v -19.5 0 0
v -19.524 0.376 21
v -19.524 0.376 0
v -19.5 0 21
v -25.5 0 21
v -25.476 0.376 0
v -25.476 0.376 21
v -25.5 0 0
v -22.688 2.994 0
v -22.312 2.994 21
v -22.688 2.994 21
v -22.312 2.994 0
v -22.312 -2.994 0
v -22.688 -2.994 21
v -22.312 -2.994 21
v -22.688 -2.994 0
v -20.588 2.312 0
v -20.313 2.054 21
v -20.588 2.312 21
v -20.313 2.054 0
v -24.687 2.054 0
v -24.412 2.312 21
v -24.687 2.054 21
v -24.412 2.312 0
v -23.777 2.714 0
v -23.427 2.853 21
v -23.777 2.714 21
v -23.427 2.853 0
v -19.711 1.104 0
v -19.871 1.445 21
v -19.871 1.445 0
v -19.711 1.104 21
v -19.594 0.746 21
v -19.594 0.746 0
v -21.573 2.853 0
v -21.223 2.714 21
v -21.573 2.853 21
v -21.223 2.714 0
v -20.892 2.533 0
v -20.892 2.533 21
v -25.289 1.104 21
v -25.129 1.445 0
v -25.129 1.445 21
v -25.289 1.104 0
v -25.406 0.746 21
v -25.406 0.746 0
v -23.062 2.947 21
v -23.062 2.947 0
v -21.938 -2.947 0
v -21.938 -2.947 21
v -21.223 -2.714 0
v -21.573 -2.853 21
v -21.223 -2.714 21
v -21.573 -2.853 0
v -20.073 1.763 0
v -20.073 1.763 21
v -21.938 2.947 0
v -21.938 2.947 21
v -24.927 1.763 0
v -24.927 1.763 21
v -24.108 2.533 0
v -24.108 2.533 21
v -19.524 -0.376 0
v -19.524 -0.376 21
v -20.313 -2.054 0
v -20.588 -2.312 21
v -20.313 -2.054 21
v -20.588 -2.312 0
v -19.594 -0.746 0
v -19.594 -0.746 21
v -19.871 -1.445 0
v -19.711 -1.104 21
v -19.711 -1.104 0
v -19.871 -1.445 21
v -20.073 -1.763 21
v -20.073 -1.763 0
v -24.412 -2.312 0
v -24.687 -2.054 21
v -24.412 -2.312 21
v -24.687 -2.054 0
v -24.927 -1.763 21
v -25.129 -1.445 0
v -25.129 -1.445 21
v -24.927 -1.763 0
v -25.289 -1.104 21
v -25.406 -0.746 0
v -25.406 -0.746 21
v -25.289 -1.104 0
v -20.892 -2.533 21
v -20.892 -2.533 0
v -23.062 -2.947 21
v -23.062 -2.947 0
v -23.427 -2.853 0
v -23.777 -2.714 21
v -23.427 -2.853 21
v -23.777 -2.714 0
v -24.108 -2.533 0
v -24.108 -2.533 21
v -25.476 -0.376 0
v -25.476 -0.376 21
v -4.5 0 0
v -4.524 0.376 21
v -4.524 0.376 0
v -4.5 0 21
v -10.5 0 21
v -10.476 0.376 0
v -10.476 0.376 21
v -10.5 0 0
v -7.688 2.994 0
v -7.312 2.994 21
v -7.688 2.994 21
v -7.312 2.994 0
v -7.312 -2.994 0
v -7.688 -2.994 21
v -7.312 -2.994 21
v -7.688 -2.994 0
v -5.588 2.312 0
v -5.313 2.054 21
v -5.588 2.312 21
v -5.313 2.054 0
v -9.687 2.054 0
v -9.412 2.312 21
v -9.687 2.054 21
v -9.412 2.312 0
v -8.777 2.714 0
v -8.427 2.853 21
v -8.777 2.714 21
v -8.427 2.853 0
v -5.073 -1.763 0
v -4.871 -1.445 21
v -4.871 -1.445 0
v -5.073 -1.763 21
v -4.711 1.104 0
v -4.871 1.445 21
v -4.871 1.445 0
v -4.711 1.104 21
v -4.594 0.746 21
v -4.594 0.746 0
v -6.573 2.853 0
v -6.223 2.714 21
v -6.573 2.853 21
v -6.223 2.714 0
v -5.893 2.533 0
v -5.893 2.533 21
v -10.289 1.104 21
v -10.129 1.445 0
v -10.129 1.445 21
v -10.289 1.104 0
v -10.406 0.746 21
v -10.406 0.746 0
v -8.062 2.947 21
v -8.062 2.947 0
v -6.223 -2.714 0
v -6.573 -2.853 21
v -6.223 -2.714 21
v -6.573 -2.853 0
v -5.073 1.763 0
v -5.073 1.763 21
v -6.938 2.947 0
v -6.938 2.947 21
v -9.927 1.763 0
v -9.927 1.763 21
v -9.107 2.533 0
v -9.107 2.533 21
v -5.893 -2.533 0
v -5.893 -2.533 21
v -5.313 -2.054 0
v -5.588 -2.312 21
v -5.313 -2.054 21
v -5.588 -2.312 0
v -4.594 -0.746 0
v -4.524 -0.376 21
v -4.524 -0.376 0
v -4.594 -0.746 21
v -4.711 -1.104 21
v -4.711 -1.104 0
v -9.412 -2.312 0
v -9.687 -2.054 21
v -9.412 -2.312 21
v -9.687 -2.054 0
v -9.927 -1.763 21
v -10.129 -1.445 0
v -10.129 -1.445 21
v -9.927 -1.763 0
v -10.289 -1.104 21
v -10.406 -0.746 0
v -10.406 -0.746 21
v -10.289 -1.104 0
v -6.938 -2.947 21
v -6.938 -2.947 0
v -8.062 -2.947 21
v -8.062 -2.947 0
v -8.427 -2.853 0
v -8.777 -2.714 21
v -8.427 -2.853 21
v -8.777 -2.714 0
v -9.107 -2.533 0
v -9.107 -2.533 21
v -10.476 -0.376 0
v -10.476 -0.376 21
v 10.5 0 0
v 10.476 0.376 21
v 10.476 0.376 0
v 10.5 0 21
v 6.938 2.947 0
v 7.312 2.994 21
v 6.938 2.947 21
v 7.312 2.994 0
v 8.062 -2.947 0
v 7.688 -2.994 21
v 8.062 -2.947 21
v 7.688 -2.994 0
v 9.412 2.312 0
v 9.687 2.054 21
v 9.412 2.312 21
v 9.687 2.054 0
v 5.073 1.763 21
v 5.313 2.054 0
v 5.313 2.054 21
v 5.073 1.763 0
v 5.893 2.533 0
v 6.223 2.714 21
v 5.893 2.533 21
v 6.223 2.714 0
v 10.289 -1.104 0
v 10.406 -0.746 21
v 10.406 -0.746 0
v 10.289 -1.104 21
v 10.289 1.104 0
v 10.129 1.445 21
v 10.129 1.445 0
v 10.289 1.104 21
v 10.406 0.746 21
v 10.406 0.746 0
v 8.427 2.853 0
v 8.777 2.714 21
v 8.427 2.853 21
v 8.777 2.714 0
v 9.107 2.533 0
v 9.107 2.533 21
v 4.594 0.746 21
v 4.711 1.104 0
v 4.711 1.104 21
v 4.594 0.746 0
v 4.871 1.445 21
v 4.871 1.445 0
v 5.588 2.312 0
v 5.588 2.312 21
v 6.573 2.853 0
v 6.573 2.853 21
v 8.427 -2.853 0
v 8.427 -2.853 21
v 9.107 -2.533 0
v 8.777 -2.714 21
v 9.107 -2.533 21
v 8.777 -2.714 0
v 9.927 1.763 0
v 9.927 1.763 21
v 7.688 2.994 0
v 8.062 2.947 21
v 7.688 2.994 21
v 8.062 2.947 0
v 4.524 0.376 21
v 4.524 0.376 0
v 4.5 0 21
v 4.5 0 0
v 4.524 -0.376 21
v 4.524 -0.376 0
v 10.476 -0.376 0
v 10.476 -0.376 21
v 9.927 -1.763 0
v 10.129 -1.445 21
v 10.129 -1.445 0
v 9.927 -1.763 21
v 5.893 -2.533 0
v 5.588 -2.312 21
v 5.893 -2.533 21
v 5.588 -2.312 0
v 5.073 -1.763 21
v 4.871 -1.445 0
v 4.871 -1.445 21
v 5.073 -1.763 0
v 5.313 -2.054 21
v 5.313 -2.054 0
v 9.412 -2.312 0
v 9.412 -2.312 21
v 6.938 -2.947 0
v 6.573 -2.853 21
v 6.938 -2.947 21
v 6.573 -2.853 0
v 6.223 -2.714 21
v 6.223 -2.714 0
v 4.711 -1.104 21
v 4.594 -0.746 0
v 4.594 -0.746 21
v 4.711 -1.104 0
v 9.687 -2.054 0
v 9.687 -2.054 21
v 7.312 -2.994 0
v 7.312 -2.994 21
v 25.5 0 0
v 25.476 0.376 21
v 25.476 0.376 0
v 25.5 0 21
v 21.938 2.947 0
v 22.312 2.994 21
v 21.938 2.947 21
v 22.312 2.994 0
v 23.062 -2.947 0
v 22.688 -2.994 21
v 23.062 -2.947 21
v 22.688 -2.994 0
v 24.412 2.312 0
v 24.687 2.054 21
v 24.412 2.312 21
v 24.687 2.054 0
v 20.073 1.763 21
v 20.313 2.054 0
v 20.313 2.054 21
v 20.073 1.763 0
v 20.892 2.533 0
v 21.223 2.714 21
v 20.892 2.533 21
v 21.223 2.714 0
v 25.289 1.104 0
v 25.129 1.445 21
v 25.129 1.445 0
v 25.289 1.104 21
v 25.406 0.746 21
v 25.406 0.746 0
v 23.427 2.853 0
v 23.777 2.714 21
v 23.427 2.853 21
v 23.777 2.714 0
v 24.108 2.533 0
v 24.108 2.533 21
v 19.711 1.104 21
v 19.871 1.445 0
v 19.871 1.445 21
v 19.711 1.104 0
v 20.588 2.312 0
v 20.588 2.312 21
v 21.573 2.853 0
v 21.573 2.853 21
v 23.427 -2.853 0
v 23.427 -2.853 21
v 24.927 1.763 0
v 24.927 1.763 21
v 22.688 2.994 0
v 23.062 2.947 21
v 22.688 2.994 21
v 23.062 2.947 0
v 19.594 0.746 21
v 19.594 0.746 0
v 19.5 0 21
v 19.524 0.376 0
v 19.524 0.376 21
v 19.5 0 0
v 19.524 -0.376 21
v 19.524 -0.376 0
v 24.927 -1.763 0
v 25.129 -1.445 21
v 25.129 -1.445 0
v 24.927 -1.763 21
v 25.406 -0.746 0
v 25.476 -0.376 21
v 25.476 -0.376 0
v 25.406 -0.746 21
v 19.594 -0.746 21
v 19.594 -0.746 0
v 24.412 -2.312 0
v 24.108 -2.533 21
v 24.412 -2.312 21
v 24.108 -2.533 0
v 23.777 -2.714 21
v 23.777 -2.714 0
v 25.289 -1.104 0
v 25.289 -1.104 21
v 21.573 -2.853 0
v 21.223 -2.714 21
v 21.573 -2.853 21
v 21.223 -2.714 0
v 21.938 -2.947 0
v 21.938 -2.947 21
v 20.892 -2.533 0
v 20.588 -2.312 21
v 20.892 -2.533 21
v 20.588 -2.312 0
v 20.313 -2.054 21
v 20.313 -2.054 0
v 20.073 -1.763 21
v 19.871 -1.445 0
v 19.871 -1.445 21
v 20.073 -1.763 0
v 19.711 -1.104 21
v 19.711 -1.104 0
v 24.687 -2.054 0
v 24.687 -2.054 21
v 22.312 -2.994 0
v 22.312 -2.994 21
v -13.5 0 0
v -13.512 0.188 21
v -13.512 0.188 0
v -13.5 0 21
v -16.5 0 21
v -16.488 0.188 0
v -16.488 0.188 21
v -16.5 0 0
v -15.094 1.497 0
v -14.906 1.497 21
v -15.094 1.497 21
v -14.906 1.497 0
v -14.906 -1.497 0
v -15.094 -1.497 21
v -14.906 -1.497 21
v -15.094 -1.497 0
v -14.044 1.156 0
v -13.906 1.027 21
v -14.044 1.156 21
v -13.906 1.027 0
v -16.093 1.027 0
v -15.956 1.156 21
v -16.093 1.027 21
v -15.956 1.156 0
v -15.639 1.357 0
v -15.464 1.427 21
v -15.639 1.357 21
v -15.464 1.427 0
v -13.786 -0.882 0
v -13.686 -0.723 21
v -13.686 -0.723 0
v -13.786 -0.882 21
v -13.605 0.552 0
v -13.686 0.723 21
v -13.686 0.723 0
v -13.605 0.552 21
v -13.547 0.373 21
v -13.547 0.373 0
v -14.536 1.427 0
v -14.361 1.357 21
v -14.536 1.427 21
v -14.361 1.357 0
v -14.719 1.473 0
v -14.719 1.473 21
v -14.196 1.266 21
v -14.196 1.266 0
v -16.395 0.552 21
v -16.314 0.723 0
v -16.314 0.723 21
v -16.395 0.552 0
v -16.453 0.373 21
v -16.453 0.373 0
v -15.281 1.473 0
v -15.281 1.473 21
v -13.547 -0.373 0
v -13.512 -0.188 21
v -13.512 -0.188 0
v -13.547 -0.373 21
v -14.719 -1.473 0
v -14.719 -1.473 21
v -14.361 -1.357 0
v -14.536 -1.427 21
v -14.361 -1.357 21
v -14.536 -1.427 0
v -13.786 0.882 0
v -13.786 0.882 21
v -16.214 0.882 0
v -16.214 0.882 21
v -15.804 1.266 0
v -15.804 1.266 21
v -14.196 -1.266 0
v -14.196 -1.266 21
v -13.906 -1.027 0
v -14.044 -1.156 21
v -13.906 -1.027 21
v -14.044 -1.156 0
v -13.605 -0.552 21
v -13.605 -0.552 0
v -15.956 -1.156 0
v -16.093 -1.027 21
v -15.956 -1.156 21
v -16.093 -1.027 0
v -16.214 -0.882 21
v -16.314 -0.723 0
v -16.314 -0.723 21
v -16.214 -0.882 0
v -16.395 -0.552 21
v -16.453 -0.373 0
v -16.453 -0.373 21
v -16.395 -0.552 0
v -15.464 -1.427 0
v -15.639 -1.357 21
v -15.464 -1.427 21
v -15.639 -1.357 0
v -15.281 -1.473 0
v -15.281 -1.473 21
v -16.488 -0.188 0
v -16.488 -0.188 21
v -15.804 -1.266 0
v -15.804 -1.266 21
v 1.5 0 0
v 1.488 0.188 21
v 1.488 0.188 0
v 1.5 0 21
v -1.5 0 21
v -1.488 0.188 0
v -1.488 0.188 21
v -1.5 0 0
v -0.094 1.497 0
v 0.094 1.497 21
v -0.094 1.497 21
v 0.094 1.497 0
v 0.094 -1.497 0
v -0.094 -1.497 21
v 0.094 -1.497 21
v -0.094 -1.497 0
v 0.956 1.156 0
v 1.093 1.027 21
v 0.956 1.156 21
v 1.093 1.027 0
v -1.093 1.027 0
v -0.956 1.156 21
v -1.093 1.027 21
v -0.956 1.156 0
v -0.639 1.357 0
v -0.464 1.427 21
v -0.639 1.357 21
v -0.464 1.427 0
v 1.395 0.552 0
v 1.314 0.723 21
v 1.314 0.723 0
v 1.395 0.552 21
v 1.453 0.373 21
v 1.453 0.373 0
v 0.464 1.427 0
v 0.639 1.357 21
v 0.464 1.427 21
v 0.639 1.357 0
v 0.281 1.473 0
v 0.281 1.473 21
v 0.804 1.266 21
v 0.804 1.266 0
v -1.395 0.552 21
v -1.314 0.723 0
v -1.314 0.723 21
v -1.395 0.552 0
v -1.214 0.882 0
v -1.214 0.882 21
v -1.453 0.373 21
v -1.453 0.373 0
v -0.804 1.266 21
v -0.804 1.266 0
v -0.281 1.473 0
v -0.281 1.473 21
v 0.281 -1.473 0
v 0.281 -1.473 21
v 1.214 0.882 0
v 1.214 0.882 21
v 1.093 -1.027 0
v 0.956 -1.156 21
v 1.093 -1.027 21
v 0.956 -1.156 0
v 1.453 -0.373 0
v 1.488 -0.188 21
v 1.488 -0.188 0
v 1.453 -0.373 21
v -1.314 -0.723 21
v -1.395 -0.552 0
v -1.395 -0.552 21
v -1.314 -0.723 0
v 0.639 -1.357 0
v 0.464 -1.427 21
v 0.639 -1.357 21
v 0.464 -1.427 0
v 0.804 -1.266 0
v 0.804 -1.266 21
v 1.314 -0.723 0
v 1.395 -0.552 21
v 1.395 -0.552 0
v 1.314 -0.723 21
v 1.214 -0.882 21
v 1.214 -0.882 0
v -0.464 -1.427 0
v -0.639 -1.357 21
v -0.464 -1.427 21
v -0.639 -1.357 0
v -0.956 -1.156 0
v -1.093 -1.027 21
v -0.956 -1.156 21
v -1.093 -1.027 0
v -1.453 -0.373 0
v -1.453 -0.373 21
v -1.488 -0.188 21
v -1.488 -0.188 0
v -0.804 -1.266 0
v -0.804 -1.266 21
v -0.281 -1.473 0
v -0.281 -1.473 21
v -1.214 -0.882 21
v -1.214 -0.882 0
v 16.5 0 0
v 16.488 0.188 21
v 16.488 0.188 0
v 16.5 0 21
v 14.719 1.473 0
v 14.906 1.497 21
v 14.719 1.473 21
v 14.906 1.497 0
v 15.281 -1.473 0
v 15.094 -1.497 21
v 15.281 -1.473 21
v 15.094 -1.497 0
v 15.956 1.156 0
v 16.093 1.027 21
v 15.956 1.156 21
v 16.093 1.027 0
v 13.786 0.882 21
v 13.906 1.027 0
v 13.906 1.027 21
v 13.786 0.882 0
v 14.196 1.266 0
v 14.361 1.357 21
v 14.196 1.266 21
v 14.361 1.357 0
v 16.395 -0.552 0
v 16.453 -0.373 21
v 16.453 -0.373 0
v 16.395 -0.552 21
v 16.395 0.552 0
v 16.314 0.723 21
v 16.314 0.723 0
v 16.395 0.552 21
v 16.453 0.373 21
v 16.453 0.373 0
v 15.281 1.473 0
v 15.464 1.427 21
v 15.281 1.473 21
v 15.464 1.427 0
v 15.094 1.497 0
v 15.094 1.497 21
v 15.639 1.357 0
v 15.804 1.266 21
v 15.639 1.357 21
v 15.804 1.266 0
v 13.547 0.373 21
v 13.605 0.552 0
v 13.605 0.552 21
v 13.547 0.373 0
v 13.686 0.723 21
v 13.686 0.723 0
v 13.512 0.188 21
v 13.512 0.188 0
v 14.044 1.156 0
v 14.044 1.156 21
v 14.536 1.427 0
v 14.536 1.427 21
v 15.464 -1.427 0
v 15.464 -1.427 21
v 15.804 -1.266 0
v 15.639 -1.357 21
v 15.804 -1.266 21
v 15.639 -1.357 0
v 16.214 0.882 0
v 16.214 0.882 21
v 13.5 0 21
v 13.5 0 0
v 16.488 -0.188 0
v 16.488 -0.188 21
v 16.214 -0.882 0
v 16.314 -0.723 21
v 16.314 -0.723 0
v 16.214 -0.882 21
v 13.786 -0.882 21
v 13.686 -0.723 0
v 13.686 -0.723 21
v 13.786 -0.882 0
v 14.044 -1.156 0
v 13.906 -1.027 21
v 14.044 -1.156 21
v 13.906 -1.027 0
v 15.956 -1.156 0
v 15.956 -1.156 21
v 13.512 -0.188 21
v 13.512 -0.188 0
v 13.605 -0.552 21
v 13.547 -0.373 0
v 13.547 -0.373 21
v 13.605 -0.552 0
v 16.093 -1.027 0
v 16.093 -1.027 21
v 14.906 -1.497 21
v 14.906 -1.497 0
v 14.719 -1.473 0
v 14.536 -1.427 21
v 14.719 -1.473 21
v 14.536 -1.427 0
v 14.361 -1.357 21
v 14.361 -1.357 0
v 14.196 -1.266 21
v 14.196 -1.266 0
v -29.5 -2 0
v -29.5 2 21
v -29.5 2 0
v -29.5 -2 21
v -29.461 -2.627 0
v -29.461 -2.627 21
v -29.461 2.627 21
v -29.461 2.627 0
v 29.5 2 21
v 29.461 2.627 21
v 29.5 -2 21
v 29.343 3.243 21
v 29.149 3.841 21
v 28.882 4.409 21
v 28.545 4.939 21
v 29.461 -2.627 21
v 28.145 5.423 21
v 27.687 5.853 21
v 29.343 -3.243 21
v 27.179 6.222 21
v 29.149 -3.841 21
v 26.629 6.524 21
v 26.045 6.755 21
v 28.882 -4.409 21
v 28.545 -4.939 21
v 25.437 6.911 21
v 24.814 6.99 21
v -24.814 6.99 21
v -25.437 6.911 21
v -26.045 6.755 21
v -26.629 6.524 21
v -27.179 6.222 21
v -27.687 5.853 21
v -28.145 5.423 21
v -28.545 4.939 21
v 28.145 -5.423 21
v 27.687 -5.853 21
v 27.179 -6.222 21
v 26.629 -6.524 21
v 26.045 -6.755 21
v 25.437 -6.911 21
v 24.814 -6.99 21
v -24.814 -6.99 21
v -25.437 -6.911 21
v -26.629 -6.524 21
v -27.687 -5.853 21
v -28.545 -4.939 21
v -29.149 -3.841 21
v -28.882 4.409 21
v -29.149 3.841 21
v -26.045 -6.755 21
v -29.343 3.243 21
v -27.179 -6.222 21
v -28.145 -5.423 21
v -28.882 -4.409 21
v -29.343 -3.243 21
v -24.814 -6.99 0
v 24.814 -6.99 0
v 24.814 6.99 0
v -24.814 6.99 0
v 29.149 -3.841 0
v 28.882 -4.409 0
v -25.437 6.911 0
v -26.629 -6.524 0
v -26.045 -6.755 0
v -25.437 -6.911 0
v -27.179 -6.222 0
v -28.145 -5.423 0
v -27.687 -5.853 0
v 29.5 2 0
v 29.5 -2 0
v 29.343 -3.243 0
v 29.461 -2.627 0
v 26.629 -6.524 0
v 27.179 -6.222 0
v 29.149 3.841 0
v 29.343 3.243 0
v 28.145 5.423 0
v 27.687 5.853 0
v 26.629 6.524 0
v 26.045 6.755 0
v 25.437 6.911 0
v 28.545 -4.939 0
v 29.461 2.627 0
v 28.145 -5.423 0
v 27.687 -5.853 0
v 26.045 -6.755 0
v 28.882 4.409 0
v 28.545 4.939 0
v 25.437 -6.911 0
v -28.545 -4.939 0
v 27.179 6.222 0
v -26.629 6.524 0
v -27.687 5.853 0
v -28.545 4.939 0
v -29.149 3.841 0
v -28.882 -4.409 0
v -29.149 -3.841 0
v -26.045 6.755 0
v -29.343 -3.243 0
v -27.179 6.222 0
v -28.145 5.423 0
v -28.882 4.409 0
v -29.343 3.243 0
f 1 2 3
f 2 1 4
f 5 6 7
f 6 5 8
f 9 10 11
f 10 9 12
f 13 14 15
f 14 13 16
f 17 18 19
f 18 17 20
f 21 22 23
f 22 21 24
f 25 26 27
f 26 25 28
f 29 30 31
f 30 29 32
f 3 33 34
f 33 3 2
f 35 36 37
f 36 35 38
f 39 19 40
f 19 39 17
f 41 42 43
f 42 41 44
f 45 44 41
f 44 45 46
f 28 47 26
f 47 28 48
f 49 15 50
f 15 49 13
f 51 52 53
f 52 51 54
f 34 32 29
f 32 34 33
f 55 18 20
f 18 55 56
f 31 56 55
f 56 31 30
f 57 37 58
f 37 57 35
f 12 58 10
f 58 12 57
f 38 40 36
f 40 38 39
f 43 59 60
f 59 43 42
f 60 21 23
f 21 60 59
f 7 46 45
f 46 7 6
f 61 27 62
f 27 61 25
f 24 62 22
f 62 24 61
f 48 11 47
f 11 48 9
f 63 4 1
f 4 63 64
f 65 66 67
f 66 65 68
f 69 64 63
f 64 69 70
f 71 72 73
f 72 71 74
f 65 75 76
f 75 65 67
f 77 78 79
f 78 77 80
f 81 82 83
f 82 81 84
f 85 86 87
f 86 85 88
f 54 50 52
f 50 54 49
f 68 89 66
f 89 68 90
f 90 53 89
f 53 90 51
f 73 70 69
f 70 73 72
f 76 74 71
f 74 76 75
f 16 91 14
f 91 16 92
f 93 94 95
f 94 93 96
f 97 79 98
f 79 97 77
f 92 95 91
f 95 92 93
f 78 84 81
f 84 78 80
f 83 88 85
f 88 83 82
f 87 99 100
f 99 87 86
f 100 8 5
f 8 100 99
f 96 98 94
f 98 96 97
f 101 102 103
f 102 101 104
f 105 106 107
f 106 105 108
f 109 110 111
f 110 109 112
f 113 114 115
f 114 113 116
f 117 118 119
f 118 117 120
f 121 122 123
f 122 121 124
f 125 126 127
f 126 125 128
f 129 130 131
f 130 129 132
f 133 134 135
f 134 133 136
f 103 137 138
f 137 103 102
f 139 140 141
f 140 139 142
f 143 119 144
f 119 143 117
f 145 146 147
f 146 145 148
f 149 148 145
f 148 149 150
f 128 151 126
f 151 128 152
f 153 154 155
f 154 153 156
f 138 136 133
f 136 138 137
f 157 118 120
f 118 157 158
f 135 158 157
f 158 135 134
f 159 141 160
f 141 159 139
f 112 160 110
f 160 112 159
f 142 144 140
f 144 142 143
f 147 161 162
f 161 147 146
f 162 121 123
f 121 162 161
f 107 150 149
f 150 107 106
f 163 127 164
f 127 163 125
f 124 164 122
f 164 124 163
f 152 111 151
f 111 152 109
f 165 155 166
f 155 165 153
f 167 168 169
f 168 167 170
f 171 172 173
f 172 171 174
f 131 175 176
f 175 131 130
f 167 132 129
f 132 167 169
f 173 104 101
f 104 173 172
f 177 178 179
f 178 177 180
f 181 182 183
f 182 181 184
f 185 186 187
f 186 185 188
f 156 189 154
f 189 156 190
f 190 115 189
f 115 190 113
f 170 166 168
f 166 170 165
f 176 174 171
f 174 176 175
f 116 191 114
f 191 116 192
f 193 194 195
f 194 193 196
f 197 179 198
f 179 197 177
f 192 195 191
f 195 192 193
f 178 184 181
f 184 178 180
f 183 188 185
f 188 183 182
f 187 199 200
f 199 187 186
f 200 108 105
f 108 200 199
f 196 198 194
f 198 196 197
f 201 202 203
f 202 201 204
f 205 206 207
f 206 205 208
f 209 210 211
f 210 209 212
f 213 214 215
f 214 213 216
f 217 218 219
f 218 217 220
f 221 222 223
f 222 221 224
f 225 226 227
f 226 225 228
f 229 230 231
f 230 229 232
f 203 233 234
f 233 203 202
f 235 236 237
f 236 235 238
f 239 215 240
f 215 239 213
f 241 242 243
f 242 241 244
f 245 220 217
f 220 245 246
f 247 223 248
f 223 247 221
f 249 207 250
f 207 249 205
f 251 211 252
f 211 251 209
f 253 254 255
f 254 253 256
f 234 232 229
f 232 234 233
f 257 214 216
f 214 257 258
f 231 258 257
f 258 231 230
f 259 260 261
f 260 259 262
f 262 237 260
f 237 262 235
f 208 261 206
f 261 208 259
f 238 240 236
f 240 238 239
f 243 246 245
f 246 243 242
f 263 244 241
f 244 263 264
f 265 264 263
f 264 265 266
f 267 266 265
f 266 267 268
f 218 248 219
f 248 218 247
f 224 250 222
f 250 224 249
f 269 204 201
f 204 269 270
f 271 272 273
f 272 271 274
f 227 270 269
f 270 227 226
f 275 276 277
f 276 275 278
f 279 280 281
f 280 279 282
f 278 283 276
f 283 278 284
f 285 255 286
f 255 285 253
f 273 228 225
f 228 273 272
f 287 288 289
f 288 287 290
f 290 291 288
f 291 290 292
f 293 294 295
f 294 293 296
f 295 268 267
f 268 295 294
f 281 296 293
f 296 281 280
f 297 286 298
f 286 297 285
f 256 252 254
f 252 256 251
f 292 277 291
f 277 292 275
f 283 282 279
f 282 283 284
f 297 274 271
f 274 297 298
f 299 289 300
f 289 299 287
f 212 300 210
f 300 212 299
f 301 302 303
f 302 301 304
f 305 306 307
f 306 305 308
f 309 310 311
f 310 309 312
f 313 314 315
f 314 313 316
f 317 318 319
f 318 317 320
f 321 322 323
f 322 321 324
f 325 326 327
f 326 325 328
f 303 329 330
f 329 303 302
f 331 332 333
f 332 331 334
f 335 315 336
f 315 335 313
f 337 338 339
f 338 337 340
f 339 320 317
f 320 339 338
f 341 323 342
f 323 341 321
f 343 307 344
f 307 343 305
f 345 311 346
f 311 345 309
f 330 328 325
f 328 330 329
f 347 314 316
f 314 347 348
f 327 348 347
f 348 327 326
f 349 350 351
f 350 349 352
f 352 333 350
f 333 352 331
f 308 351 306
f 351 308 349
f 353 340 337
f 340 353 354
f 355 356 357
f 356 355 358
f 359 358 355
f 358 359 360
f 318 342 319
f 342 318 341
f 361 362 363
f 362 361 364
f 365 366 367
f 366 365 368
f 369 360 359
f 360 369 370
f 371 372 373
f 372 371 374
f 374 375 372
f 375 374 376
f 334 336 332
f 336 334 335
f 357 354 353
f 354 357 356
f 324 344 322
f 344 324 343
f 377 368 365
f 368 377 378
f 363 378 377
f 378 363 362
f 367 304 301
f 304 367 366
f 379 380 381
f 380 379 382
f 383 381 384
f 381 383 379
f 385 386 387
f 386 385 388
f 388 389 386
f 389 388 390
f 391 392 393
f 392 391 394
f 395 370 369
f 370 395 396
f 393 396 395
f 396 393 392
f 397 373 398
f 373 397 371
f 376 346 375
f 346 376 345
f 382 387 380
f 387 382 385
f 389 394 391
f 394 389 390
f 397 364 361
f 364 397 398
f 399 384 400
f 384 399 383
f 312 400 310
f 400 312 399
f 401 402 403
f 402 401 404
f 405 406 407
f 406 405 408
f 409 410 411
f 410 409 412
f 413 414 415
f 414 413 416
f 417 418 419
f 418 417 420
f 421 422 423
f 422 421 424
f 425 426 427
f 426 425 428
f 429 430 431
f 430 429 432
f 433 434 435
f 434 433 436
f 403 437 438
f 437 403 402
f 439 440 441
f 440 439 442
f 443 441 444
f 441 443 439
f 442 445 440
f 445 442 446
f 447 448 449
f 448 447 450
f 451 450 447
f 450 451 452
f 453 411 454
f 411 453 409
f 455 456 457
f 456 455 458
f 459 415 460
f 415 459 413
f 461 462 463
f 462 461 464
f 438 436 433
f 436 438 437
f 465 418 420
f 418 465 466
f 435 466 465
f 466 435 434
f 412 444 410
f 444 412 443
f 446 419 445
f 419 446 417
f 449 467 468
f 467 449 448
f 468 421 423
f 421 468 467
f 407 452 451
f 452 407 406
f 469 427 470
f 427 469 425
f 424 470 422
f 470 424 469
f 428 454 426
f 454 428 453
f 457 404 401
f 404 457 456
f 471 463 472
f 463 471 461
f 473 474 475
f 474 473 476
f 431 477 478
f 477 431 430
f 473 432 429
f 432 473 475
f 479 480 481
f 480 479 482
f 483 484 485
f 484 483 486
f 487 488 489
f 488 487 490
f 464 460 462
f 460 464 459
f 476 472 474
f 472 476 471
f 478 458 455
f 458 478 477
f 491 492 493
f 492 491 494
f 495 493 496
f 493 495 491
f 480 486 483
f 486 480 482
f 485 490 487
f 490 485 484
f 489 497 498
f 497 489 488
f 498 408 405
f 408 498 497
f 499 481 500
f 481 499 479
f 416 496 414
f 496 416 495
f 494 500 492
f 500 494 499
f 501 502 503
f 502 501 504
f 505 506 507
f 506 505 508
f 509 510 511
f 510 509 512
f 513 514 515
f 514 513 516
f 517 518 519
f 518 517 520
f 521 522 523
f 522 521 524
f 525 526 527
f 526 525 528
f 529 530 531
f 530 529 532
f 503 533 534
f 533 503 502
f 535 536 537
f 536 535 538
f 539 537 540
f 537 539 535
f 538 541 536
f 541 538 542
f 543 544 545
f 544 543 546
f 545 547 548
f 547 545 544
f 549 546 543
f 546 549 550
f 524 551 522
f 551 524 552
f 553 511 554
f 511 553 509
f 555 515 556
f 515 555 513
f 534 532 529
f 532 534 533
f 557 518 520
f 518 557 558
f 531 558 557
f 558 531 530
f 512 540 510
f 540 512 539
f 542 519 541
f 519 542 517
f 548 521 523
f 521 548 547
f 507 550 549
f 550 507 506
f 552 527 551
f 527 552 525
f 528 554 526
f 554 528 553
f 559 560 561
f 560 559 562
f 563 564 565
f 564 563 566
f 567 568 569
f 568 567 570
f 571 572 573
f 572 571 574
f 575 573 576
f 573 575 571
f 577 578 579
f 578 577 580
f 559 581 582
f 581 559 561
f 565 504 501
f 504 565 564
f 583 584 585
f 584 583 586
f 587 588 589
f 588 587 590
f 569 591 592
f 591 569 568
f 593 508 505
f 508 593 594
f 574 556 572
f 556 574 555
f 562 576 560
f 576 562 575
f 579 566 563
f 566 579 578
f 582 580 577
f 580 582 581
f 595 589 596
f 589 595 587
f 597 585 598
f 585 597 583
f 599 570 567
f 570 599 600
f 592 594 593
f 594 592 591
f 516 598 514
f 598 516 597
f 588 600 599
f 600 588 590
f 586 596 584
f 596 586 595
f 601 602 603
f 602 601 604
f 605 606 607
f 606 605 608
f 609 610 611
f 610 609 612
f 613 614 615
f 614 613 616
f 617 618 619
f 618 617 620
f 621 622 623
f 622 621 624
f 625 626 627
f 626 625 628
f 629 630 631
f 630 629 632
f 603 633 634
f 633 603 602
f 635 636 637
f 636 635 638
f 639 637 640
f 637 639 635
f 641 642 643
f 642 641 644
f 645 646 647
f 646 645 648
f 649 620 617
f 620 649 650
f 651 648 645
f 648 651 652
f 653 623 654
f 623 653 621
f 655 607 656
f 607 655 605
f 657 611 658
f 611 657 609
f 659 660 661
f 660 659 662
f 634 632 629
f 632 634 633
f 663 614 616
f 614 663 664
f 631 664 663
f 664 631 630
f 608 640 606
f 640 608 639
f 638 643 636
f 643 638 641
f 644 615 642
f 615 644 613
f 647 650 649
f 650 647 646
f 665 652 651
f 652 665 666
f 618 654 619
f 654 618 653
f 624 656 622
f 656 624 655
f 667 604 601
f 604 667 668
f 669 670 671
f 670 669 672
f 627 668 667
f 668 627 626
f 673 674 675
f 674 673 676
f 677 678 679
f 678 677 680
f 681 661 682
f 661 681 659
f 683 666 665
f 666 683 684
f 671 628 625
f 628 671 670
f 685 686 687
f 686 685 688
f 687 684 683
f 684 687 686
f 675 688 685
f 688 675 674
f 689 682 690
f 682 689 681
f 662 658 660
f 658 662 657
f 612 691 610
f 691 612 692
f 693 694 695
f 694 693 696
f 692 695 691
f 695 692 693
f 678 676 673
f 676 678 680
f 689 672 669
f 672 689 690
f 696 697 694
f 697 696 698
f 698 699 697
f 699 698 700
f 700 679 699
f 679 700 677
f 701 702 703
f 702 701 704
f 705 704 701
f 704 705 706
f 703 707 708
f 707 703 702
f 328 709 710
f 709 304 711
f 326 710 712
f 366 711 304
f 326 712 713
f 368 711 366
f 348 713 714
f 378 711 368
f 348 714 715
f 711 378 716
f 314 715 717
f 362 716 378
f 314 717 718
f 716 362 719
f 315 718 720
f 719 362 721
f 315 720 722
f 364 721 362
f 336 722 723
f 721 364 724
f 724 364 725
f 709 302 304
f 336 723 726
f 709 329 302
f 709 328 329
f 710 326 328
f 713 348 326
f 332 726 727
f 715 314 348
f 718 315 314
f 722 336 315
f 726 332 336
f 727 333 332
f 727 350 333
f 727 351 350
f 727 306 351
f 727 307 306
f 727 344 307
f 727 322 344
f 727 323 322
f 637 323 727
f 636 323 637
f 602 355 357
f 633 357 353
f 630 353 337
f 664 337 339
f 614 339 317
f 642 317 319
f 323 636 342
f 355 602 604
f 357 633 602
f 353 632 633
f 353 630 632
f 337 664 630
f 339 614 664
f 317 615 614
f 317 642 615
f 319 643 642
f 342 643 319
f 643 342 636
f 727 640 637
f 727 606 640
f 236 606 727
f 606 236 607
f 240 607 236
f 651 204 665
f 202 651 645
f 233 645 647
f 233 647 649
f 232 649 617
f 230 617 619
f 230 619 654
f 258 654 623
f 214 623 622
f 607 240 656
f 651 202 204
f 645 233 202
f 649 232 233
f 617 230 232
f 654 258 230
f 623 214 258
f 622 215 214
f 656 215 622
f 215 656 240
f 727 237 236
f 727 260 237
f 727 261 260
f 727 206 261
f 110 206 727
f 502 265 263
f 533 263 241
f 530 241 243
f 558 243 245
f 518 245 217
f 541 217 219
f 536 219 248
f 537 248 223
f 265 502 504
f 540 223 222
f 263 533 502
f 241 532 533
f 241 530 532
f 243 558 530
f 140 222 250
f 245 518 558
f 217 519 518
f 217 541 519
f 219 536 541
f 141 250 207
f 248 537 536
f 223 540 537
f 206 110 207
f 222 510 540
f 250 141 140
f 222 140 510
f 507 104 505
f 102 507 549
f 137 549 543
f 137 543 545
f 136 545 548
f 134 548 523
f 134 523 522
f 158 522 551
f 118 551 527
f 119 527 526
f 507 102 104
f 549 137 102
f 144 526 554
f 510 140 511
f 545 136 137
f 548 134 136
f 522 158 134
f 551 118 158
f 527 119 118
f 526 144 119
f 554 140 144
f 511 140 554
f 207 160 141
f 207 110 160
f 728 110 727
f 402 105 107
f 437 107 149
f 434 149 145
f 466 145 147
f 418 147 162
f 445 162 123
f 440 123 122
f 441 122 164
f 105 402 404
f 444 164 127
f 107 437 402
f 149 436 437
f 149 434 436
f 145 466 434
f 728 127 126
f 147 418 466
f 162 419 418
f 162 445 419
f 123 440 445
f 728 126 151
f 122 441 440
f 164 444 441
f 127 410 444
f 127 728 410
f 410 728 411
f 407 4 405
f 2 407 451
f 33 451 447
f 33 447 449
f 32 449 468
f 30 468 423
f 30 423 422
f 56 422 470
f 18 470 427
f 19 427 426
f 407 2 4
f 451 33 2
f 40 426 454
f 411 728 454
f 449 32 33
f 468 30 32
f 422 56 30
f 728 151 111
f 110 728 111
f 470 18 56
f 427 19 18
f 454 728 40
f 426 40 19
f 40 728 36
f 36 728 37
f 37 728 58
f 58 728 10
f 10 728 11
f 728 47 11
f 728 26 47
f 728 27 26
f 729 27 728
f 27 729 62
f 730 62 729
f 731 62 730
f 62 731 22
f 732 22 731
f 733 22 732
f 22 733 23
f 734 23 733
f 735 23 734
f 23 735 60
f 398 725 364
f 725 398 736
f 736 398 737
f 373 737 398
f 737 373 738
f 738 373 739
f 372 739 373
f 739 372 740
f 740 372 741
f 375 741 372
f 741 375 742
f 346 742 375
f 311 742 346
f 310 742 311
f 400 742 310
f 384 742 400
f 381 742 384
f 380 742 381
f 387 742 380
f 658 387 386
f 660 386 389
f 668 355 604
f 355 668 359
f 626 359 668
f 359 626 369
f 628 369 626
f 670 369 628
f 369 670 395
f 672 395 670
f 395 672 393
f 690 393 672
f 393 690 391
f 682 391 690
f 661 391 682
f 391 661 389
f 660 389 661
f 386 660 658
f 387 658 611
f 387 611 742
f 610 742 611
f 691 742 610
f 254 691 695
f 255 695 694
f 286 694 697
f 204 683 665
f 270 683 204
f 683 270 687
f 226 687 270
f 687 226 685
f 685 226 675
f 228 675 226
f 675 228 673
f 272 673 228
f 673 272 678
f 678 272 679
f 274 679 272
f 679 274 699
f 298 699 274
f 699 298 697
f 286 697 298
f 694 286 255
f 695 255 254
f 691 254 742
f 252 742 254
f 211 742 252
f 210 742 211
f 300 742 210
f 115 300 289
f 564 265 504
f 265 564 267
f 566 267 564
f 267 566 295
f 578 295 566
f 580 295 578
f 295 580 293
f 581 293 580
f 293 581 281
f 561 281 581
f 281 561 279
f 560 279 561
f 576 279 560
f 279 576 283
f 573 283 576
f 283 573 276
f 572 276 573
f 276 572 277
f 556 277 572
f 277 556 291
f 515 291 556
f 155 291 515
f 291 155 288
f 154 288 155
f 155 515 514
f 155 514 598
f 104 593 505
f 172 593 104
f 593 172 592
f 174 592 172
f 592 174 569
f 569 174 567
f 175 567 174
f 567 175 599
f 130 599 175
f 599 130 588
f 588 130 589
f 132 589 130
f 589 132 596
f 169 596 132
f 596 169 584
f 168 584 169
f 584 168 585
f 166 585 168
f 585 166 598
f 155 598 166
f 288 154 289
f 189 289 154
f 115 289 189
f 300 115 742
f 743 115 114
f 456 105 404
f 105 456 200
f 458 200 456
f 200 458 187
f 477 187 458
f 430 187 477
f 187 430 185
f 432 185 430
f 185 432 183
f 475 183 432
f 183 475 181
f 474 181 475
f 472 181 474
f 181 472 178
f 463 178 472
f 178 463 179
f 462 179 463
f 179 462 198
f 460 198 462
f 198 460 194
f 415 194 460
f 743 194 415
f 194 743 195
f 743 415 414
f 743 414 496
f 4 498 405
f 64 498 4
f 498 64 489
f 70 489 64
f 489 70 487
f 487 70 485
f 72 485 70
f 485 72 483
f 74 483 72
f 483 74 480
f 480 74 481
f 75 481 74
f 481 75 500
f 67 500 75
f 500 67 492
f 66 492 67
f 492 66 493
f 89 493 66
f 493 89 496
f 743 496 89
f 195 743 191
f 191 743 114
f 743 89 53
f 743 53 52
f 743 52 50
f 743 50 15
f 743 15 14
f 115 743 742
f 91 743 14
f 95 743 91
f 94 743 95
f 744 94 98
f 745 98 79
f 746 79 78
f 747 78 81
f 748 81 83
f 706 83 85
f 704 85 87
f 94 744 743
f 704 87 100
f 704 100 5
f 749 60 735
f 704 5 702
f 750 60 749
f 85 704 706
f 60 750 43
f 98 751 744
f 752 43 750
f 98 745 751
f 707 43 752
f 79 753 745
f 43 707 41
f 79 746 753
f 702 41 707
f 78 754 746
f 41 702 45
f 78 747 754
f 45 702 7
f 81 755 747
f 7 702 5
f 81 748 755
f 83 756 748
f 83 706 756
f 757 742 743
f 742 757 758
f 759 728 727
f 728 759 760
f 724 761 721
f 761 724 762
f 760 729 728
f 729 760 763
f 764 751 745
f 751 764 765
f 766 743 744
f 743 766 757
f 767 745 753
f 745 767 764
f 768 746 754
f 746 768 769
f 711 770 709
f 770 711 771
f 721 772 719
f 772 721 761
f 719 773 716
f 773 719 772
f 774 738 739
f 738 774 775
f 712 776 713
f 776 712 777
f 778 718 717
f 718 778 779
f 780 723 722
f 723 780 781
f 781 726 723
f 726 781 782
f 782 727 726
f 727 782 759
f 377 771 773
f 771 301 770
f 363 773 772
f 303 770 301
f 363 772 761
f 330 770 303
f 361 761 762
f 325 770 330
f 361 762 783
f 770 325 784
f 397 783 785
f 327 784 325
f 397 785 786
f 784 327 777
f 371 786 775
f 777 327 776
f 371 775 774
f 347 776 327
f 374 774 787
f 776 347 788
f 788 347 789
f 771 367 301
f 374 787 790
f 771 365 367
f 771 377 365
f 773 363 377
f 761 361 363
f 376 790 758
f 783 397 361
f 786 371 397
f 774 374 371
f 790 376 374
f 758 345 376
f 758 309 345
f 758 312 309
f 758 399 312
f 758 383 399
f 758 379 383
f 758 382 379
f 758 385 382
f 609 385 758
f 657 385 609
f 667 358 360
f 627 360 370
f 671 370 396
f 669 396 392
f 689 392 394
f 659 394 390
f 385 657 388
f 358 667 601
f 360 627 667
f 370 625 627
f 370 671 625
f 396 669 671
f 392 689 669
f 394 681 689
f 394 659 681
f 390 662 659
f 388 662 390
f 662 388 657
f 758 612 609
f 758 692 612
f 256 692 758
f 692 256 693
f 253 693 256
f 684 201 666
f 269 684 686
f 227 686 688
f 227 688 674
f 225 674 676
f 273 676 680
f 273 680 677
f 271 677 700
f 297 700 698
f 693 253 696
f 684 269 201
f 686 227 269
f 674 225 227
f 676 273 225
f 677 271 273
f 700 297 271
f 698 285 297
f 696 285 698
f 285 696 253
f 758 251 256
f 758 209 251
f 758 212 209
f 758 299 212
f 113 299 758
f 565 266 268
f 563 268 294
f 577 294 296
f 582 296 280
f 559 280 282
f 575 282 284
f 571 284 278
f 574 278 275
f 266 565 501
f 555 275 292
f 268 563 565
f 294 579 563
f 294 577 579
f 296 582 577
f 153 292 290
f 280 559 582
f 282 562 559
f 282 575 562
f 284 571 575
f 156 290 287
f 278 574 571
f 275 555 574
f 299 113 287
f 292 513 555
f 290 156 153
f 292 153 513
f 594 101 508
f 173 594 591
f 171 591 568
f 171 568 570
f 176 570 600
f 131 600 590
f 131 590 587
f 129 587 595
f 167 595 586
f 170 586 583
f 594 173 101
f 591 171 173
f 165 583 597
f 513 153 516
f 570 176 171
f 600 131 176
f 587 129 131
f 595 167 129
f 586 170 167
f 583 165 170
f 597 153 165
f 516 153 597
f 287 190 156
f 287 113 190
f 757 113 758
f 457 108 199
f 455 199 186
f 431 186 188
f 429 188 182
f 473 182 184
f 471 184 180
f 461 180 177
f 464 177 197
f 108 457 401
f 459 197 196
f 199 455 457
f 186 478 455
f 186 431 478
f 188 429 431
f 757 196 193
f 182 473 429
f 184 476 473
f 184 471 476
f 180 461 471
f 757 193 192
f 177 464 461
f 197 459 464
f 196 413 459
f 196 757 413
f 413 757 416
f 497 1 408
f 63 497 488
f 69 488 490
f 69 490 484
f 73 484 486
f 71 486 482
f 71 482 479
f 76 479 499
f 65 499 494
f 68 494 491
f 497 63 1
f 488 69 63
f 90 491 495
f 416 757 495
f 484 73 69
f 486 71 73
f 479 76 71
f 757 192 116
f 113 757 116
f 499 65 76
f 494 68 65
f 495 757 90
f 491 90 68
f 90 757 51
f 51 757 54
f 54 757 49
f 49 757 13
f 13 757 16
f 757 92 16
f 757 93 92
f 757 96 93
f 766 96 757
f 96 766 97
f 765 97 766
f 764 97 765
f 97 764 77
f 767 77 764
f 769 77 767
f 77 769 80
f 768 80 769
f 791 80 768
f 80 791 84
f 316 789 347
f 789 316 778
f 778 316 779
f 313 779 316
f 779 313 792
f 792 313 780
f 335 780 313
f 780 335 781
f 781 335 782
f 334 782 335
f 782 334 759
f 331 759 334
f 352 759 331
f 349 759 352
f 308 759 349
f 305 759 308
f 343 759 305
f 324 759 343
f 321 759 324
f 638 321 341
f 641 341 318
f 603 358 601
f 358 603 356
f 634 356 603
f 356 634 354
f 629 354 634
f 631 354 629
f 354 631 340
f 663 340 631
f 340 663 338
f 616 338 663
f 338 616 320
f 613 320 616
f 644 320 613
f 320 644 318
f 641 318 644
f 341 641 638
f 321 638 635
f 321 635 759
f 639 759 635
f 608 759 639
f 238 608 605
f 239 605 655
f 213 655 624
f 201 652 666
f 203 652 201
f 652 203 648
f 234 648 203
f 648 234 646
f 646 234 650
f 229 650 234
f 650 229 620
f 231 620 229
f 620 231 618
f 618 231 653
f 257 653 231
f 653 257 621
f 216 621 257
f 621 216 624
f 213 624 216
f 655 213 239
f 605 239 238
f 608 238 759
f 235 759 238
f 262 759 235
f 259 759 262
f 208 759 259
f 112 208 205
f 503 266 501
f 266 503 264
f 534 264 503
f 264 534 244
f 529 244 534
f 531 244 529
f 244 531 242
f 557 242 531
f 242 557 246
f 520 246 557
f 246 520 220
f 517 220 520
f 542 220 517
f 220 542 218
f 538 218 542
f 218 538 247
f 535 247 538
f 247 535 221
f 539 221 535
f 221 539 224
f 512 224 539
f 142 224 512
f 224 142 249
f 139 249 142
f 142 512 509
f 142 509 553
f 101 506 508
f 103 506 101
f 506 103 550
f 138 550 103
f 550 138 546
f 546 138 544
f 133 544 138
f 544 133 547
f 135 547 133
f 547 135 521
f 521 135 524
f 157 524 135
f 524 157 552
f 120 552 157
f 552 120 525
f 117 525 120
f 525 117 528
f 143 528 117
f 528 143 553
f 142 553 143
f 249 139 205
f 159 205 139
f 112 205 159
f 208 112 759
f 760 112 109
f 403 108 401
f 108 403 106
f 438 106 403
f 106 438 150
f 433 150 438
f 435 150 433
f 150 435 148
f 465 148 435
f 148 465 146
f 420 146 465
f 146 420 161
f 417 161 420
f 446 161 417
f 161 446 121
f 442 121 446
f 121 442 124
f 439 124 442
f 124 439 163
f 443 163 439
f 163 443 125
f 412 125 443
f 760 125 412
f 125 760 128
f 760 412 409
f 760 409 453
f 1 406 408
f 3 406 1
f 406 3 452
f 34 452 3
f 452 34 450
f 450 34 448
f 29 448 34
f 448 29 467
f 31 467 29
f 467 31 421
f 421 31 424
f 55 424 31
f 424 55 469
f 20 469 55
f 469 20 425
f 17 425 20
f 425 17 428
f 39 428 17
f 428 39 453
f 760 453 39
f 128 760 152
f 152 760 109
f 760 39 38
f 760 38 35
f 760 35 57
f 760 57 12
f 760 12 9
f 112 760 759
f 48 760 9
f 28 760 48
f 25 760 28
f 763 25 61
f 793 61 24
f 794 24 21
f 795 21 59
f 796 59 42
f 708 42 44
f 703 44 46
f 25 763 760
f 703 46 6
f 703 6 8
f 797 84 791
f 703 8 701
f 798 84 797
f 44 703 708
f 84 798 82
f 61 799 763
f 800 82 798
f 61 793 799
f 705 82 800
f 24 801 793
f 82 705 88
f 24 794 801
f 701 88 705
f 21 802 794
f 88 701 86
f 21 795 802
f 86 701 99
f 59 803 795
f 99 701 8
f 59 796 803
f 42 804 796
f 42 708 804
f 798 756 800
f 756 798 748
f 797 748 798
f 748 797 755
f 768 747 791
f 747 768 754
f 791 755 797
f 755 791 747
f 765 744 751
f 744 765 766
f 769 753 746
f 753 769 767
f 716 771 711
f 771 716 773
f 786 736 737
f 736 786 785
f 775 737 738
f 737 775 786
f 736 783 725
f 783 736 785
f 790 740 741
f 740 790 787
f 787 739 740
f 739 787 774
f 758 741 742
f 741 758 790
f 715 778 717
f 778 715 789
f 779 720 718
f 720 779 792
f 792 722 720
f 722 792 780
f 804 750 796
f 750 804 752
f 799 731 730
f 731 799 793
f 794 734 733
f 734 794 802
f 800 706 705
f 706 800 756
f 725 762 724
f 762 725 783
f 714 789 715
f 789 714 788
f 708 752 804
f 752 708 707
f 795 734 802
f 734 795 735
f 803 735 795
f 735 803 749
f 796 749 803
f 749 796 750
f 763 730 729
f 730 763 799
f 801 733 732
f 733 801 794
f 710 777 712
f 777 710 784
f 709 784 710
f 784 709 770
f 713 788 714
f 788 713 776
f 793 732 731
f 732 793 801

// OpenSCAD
$fn = 50;


difference() {
	union() {
		translate(v = [0, 0, 0]) {
			rotate(a = [0, 0, 0]) {
				hull() {
					translate(v = [-24.5000000000, 2.0000000000, 0]) {
						rotate(a = [0, 0, 0]) {
							translate(v = [0, 0, 0]) {
								rotate(a = [0, 0, 0]) {
									cylinder(h = 21, r = 5);
								}
							}
						}
					}
					translate(v = [24.5000000000, 2.0000000000, 0]) {
						rotate(a = [0, 0, 0]) {
							translate(v = [0, 0, 0]) {
								rotate(a = [0, 0, 0]) {
									cylinder(h = 21, r = 5);
								}
							}
						}
					}
					translate(v = [-24.5000000000, -2.0000000000, 0]) {
						rotate(a = [0, 0, 0]) {
							translate(v = [0, 0, 0]) {
								rotate(a = [0, 0, 0]) {
									cylinder(h = 21, r = 5);
								}
							}
						}
					}
					translate(v = [24.5000000000, -2.0000000000, 0]) {
						rotate(a = [0, 0, 0]) {
							translate(v = [0, 0, 0]) {
								rotate(a = [0, 0, 0]) {
									cylinder(h = 21, r = 5);
								}
							}
						}
					}
				}
			}
		}
	}
	union() {
		translate(v = [-22.5000000000, 0.0000000000, 0]) {
			rotate(a = [0, 0, 0]) {
				translate(v = [0, 0, -50]) {
					rotate(a = [0, 0, 0]) {
						cylinder(h = 100, r = 3.0000000000);
					}
				}
			}
		}
		translate(v = [-7.5000000000, 0.0000000000, 0]) {
			rotate(a = [0, 0, 0]) {
				translate(v = [0, 0, -50]) {
					rotate(a = [0, 0, 0]) {
						cylinder(h = 100, r = 3.0000000000);
					}
				}
			}
		}
		translate(v = [7.5000000000, 0.0000000000, 0]) {
			rotate(a = [0, 0, 0]) {
				translate(v = [0, 0, -50]) {
					rotate(a = [0, 0, 0]) {
						cylinder(h = 100, r = 3.0000000000);
					}
				}
			}
		}
		translate(v = [22.5000000000, 0.0000000000, 0]) {
			rotate(a = [0, 0, 0]) {
				translate(v = [0, 0, -50]) {
					rotate(a = [0, 0, 0]) {
						cylinder(h = 100, r = 3.0000000000);
					}
				}
			}
		}
		translate(v = [-22.5000000000, 0.0000000000, 0]) {
			rotate(a = [0, 0, 0]) {
				translate(v = [0, 0, -50]) {
					rotate(a = [0, 0, 0]) {
						cylinder(h = 100, r = 1.5000000000);
					}
				}
			}
		}
		translate(v = [-15.0000000000, 0.0000000000, 0]) {
			rotate(a = [0, 0, 0]) {
				translate(v = [0, 0, -50]) {
					rotate(a = [0, 0, 0]) {
						cylinder(h = 100, r = 1.5000000000);
					}
				}
			}
		}
		translate(v = [-7.5000000000, 0.0000000000, 0]) {
			rotate(a = [0, 0, 0]) {
				translate(v = [0, 0, -50]) {
					rotate(a = [0, 0, 0]) {
						cylinder(h = 100, r = 1.5000000000);
					}
				}
			}
		}
		translate(v = [0.0000000000, 0.0000000000, 0]) {
			rotate(a = [0, 0, 0]) {
				translate(v = [0, 0, -50]) {
					rotate(a = [0, 0, 0]) {
						cylinder(h = 100, r = 1.5000000000);
					}
				}
			}
		}
		translate(v = [7.5000000000, 0.0000000000, 0]) {
			rotate(a = [0, 0, 0]) {
				translate(v = [0, 0, -50]) {
					rotate(a = [0, 0, 0]) {
						cylinder(h = 100, r = 1.5000000000);
					}
				}
			}
		}
		translate(v = [15.0000000000, 0.0000000000, 0]) {
			rotate(a = [0, 0, 0]) {
				translate(v = [0, 0, -50]) {
					rotate(a = [0, 0, 0]) {
						cylinder(h = 100, r = 1.5000000000);
					}
				}
			}
		}
		translate(v = [22.5000000000, 0.0000000000, 0]) {
			rotate(a = [0, 0, 0]) {
				translate(v = [0, 0, -50]) {
					rotate(a = [0, 0, 0]) {
						cylinder(h = 100, r = 1.5000000000);
					}
				}
			}
		}
	}
}
